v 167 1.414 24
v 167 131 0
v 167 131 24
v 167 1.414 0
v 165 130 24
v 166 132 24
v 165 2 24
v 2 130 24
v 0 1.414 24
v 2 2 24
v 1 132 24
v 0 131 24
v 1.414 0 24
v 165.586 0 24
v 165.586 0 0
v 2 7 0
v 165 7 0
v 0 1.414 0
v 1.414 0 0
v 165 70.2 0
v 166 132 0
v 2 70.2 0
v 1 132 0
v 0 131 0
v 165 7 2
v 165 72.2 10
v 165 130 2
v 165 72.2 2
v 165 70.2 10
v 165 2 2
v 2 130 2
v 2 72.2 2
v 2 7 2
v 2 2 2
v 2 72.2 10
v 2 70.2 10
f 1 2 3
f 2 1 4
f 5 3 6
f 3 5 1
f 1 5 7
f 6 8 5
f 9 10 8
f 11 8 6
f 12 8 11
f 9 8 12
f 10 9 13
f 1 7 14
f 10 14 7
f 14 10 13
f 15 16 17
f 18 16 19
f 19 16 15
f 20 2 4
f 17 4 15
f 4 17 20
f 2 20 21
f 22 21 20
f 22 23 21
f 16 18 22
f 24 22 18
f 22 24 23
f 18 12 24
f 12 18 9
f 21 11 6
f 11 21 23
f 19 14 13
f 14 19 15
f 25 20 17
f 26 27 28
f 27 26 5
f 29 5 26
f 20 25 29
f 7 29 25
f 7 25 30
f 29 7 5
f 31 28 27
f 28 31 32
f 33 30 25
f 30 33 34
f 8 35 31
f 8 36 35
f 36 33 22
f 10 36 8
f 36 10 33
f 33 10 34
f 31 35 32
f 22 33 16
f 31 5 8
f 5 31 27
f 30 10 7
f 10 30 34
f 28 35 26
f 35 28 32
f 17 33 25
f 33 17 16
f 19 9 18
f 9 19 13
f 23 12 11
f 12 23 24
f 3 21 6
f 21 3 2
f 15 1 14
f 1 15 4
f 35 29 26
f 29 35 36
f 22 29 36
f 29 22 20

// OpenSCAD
/*
    CP4-5_case.scad is the code to generate a dust cover for
    Astro-Physics CP4 and CP5 controllers.
    
    Copyright (C) 2023  C.Y. Tan
    Contact: cytan299@yahoo.com

    This file is part of the CP4 and CP5 dust cover distribution.

    CP4-5_case is free software: you can redistribute it and/or modify
    it under the terms of the GNU General Public License as published by
    the Free Software Foundation, either version 3 of the License, or
    (at your option) any later version.

    CP4-5_case is distributed in the hope that it will be useful,
    but WITHOUT ANY WARRANTY; without even the implied warranty of
    MERCHANTABILITY or FITNESS FOR A PARTICULAR PURPOSE.  See the
    GNU General Public License for more details.

    You should have received a copy of the GNU General Public License
    along with CP4-5_case.  If not, see <http://www.gnu.org/licenses/>.

*/

$fn=100;

// inside dimensions of box
IBox_len_x = 163; // mm
IBox_len_y = 128; // mm
IBox_len_z = 20; //mm

// outside dimensions of box

Box_wall_t = 2; //mm, wall thickness

Box_len_x = IBox_len_x + 2*Box_wall_t; //mm
Box_len_y = IBox_len_y + 2*Box_wall_t; //mm
Box_len_z = IBox_len_z + 2*Box_wall_t; //mm

// partition wall y position
Box_partition_len_y = 68.2 + Box_wall_t; //mm
Box_partition_len_z = 10; //mm

// lips
Top_lip = 5; //mm

// corners

Corner_len_x = 10;
Corner_len_y = 1;
Corner_len_z = 60;

module make_box()
{
  difference(){
    difference(){
      cube([Box_len_x, Box_len_y, Box_len_z], center= false);
      translate([Box_wall_t, Box_wall_t, Box_wall_t])
        cube([IBox_len_x , IBox_len_y , IBox_len_z + 2*Box_wall_t], center=false);
    }
    // make the upper clearance hole
    translate([Box_wall_t, Box_wall_t + Top_lip, -IBox_len_z/2])    
      cube([IBox_len_x, Box_partition_len_y - Top_lip, IBox_len_z], center=false);
  }
}

module make_partition()
{
  translate([0, Box_partition_len_y, 0])
    cube([Box_len_x, Box_wall_t, Box_partition_len_z], center=false);
}

module make_flat_corners()
{
  // origin
  rotate([0,0,-45]){
  translate([-Corner_len_x/2, 0, -Corner_len_z/2])
    cube([Corner_len_x, Corner_len_y, Corner_len_z], center=false);
  }

  // top left corner
  translate([0, Box_len_y - Corner_len_y, 0]){  
    rotate([0,0,45]){
    translate([-Corner_len_x/2, 0, -Corner_len_z/2])
      cube([Corner_len_x, Corner_len_y, Corner_len_z], center=false);
    }
  }

  // top right corner
  translate([Box_len_x, Box_len_y - Corner_len_y, 0]){  
    rotate([0,0,-45]){
    translate([-Corner_len_x/2, 0, -Corner_len_z/2])
      cube([Corner_len_x, Corner_len_y, Corner_len_z], center=false);
    }
  }
  
  // bottom right corner
  translate([Box_len_x, 0, 0]){  
    rotate([0,0,45]){
    translate([-Corner_len_x/2, 0, -Corner_len_z/2])
      cube([Corner_len_x, Corner_len_y, Corner_len_z], center=false);
    }
  }  
}


union(){
 difference(){  
   make_box();
   make_flat_corners();
 }  
    make_partition();

}
